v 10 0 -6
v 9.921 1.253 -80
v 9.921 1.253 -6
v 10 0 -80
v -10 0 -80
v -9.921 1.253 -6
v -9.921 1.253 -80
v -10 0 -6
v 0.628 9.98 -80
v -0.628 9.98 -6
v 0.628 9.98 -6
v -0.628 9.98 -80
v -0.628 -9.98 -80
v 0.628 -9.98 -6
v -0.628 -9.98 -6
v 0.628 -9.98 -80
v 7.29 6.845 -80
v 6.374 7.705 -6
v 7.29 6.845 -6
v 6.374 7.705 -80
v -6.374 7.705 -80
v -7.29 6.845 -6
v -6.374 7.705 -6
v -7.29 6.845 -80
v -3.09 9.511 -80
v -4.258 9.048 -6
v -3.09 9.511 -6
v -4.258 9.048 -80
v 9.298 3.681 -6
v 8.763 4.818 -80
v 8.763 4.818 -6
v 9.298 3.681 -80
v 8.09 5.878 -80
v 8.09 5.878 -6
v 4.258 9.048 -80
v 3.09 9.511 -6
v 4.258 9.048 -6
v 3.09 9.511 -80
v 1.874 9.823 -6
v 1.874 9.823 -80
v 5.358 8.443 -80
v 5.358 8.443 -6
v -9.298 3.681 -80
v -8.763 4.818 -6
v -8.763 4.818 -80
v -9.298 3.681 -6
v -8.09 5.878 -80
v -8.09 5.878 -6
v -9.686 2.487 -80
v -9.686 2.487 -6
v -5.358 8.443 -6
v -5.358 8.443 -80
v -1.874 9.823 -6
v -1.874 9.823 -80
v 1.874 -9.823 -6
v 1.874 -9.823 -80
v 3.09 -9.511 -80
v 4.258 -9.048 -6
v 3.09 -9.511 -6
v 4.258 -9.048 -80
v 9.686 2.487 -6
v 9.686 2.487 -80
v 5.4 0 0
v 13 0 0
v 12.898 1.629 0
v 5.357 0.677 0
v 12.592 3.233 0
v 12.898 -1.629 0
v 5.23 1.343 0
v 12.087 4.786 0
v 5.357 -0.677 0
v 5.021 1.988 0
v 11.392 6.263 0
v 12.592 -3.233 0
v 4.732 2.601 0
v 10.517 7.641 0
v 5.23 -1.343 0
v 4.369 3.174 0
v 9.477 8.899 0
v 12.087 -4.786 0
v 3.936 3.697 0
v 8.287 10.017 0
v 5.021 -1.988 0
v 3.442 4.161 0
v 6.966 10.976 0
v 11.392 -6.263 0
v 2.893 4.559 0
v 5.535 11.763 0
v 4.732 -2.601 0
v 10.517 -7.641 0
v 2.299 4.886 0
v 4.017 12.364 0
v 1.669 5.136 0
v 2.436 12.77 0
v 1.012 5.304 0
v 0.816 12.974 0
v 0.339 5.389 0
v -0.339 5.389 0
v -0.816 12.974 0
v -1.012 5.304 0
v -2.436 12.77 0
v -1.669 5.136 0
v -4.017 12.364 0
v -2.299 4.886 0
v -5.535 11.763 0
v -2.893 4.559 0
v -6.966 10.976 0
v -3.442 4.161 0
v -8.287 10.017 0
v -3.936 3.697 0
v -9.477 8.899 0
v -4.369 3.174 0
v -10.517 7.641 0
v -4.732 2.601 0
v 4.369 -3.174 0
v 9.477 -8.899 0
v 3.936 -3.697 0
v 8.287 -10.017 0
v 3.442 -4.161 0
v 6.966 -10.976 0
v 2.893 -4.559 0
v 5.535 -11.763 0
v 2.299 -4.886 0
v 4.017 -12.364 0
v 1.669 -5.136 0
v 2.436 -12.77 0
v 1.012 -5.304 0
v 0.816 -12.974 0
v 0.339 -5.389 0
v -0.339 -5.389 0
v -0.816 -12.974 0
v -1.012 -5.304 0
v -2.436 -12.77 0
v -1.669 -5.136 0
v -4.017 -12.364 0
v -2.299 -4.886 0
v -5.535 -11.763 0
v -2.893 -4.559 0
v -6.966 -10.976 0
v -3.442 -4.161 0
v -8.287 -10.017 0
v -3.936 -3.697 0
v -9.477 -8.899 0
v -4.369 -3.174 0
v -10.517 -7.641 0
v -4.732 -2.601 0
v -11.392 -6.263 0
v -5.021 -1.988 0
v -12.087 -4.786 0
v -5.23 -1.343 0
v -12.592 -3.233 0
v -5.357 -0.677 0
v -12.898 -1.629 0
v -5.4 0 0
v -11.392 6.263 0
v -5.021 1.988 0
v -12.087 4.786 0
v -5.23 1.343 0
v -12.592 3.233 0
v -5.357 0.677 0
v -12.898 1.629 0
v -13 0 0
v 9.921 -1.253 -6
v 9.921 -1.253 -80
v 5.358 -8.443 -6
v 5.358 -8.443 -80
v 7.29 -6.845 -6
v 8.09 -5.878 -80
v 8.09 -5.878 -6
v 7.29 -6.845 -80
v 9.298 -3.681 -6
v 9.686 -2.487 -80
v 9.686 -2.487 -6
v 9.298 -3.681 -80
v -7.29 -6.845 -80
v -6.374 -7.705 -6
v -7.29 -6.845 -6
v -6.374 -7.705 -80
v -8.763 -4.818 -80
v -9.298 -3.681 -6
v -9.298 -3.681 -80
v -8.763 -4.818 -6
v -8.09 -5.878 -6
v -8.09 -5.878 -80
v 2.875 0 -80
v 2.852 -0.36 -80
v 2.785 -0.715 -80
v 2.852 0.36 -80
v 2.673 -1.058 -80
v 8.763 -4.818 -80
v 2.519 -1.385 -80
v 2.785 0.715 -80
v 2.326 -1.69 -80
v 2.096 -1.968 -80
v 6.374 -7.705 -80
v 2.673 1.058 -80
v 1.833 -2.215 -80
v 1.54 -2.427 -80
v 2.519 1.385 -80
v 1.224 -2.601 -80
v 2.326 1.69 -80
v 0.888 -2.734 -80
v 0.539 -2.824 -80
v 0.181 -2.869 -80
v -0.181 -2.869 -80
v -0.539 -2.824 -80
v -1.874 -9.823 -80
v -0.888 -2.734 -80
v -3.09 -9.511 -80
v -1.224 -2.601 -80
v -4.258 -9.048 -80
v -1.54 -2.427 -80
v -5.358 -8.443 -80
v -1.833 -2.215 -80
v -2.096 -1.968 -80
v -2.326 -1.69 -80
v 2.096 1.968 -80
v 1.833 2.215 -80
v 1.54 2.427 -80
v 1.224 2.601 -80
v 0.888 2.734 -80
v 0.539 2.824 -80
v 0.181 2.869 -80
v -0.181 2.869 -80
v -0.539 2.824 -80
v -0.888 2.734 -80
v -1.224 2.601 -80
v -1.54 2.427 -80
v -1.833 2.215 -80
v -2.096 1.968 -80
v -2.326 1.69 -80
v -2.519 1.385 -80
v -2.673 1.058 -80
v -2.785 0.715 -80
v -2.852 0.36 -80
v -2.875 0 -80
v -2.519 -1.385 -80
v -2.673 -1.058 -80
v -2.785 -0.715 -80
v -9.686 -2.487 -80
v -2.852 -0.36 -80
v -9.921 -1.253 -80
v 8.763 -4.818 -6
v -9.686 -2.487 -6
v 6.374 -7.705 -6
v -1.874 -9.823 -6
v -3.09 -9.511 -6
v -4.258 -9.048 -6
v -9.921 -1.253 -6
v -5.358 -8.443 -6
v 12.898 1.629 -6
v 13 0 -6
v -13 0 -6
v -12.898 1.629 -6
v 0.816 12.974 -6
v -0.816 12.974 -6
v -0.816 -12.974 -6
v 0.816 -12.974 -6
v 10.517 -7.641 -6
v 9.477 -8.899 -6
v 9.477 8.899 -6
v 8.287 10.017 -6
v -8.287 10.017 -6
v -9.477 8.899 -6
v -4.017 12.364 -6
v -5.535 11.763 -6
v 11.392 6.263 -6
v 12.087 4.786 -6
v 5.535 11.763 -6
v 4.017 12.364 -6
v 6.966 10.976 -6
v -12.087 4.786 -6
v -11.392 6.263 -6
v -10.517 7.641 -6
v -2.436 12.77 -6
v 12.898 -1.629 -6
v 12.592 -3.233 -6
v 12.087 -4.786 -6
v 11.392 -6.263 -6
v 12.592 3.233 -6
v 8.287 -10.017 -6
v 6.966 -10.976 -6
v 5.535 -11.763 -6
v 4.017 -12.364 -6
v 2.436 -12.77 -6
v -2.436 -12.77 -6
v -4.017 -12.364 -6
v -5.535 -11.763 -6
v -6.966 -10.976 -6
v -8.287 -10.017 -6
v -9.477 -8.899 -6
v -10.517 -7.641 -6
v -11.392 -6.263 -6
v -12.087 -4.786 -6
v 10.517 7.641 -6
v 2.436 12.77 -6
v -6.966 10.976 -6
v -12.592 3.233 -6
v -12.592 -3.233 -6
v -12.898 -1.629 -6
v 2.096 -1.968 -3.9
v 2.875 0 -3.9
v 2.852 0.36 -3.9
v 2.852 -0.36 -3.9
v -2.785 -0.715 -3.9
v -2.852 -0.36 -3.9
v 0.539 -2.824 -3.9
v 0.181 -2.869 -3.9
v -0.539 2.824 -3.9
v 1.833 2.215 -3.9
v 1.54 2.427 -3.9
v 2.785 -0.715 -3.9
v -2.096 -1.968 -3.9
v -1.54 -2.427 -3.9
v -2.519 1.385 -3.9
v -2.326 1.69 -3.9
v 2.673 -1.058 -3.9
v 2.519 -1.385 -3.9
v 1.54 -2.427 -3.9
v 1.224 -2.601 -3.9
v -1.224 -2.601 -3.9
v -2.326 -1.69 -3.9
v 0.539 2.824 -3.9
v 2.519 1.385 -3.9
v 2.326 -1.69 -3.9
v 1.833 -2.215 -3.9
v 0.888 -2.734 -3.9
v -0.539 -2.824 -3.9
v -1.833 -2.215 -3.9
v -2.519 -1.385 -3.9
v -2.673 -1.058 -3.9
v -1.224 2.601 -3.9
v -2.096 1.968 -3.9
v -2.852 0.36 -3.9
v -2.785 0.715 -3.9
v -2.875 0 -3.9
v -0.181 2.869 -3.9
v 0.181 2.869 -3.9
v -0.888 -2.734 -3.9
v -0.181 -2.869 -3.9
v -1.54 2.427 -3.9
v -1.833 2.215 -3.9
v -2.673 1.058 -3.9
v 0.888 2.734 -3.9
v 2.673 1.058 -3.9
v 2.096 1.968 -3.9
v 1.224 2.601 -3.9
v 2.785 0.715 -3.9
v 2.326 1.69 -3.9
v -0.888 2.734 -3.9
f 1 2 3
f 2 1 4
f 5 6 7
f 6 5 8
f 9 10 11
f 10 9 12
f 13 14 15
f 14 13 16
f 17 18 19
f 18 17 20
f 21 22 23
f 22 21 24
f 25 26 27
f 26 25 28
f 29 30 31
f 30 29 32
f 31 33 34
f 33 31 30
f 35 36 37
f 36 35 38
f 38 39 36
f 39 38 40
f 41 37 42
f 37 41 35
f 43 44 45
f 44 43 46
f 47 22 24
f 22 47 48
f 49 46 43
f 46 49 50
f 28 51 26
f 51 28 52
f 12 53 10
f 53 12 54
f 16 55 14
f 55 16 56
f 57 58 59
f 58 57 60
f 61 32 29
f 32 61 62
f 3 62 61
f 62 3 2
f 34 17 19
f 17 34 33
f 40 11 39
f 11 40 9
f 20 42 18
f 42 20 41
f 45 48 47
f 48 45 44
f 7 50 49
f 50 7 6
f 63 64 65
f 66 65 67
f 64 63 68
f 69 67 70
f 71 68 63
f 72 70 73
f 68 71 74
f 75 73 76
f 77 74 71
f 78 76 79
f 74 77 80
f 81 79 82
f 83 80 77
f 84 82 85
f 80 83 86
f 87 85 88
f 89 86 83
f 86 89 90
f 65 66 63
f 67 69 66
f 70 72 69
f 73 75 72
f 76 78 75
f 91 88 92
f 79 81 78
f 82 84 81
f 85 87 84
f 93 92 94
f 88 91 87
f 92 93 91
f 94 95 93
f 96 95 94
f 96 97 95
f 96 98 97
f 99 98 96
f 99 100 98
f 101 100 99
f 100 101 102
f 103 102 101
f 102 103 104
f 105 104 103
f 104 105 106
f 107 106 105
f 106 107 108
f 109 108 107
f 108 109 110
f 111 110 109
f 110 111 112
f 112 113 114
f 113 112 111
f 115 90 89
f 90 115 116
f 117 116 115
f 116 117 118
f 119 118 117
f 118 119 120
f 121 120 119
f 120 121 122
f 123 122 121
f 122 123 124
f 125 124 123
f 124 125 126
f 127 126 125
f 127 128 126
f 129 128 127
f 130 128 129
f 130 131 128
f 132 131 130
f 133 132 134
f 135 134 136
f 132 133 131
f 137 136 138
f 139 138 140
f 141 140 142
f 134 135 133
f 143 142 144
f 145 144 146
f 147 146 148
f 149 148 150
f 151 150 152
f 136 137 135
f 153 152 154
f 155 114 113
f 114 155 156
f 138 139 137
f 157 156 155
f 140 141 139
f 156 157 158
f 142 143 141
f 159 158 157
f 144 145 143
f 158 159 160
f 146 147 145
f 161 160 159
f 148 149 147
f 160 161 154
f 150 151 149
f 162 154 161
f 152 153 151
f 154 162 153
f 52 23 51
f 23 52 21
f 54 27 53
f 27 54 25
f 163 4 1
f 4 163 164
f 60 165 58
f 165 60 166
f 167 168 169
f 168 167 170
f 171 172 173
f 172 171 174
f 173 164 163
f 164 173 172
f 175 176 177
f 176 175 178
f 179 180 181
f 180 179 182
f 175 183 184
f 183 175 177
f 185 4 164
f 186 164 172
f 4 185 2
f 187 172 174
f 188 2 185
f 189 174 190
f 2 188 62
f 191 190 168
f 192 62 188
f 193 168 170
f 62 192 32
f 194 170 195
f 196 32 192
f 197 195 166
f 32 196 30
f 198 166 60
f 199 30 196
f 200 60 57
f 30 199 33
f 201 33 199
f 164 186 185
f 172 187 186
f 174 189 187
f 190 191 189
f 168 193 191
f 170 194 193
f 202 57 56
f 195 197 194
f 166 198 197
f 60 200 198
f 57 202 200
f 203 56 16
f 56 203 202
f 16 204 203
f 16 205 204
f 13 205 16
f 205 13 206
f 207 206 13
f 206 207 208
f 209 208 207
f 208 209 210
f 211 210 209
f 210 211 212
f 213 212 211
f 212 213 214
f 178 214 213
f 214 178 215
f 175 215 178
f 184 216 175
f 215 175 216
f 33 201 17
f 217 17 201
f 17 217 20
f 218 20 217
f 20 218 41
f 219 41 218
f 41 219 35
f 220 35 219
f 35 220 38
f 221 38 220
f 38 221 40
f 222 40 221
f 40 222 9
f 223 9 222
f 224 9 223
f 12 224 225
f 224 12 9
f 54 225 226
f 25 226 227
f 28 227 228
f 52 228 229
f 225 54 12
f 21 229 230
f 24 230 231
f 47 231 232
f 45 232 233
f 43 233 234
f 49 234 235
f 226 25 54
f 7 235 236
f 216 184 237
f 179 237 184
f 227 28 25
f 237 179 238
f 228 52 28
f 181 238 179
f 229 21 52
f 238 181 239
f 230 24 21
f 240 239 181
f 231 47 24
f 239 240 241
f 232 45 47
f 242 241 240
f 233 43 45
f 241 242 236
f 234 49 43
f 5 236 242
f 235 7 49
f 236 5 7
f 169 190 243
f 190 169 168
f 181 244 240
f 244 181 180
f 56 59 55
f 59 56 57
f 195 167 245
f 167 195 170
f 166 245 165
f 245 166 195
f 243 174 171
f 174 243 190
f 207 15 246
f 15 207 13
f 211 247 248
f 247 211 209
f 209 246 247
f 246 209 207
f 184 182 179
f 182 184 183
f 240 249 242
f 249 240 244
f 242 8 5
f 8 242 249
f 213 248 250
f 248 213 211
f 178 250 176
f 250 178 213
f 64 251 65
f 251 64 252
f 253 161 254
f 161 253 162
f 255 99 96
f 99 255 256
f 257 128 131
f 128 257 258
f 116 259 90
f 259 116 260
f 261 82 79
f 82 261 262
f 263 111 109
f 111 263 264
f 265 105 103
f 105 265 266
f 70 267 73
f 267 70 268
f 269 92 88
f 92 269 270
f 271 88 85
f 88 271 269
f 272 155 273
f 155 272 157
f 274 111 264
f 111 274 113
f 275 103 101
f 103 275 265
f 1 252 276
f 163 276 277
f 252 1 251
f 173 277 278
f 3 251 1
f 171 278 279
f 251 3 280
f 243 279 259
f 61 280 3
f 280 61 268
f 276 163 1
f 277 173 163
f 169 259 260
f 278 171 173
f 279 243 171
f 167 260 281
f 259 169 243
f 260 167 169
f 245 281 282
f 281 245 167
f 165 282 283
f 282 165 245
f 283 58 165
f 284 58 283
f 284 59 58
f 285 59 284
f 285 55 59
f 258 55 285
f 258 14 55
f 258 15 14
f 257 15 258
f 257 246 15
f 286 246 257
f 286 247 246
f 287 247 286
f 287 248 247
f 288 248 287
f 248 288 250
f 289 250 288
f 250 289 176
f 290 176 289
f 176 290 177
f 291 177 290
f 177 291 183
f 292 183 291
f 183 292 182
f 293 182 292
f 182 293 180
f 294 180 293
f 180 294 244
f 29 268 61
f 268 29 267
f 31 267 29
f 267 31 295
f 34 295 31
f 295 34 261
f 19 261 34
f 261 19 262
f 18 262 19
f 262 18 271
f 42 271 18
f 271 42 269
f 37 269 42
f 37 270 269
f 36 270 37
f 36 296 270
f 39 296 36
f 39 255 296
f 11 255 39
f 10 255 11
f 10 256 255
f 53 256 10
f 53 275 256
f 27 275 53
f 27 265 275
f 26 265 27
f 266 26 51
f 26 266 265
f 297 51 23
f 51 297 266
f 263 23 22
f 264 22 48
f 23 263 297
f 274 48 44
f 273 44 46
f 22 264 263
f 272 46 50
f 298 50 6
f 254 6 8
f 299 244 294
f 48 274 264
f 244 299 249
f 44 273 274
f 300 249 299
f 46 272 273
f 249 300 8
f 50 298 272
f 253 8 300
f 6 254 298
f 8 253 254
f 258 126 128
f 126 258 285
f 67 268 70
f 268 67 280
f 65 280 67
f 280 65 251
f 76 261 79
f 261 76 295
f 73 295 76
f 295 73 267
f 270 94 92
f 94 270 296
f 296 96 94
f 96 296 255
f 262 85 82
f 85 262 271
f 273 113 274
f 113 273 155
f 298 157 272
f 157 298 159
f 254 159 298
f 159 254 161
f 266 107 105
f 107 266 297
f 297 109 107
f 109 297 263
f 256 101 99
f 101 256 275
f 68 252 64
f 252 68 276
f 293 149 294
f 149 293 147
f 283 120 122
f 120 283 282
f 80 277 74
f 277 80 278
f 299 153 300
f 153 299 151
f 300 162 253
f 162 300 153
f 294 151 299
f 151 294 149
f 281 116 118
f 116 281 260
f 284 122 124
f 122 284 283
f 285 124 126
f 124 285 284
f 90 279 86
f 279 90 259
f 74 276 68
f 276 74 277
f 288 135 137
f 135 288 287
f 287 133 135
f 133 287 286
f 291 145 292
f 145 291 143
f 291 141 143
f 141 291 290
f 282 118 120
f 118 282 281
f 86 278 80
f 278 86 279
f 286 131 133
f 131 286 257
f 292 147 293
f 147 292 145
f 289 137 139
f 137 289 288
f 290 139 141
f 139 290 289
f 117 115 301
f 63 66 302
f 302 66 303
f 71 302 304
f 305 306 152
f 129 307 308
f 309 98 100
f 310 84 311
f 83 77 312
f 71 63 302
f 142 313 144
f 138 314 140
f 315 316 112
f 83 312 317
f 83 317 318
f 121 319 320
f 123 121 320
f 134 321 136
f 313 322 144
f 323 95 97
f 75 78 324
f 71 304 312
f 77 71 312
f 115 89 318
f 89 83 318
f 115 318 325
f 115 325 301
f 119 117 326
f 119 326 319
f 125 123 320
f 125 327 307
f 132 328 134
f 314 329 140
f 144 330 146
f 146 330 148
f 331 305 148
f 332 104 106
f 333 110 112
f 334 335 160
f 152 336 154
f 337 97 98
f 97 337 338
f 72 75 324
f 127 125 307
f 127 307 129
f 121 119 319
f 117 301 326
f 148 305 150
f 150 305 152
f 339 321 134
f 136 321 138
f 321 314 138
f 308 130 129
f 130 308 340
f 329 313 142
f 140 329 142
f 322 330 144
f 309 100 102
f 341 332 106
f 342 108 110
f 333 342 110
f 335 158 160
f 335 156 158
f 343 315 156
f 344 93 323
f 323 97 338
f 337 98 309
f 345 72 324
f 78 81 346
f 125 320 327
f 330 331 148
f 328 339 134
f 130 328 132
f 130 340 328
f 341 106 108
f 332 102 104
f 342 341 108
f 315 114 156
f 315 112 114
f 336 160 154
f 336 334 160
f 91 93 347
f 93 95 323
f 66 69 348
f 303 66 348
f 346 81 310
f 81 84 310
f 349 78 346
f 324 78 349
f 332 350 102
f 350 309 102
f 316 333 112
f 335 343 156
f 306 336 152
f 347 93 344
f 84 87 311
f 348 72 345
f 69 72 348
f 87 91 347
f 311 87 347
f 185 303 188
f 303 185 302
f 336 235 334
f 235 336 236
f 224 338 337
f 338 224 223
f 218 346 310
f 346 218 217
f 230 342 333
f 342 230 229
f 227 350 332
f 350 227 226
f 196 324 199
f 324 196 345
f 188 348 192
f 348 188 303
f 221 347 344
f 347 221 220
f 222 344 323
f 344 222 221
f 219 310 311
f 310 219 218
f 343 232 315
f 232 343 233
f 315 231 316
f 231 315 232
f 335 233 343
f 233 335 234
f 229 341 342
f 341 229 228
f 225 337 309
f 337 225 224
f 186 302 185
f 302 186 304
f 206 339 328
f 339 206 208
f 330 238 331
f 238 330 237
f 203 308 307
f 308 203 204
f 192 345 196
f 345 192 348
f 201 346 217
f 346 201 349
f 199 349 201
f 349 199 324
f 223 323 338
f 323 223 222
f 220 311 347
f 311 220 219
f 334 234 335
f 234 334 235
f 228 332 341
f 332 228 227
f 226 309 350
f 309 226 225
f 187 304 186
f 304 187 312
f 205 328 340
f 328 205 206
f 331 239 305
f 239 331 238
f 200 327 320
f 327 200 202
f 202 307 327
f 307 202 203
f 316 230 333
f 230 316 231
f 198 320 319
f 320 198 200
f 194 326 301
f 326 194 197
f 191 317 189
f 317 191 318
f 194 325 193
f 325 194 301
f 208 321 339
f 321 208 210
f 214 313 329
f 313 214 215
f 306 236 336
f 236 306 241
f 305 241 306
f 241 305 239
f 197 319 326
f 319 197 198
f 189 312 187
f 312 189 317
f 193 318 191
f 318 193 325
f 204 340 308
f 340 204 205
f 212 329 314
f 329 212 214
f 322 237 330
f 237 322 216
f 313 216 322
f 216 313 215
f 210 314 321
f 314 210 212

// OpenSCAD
$fn = 50;


difference() {
	union() {
		translate(v = [0, 0, -80.0000000000]) {
			cylinder(h = 80, r = 10.0000000000);
		}
		translate(v = [0, 0, -6.0000000000]) {
			cylinder(h = 6, r = 13.0000000000);
		}
	}
	union() {
		translate(v = [0, 0, 0]) {
			rotate(a = [0, 0, 0]) {
				difference() {
					union() {
						#translate(v = [0, 0, -80.0000000000]) {
							cylinder(h = 80, r = 2.6000000000);
						}
						#translate(v = [0, 0, -3.9000000000]) {
							cylinder(h = 3.9000000000, r1 = 2.8750000000, r2 = 5.4000000000);
						}
						#translate(v = [0, 0, -80.0000000000]) {
							cylinder(h = 80, r = 2.8750000000);
						}
						#translate(v = [0, 0, -80.0000000000]) {
							cylinder(h = 80, r = 2.6000000000);
						}
					}
					union();
				}
			}
		}
	}
}
